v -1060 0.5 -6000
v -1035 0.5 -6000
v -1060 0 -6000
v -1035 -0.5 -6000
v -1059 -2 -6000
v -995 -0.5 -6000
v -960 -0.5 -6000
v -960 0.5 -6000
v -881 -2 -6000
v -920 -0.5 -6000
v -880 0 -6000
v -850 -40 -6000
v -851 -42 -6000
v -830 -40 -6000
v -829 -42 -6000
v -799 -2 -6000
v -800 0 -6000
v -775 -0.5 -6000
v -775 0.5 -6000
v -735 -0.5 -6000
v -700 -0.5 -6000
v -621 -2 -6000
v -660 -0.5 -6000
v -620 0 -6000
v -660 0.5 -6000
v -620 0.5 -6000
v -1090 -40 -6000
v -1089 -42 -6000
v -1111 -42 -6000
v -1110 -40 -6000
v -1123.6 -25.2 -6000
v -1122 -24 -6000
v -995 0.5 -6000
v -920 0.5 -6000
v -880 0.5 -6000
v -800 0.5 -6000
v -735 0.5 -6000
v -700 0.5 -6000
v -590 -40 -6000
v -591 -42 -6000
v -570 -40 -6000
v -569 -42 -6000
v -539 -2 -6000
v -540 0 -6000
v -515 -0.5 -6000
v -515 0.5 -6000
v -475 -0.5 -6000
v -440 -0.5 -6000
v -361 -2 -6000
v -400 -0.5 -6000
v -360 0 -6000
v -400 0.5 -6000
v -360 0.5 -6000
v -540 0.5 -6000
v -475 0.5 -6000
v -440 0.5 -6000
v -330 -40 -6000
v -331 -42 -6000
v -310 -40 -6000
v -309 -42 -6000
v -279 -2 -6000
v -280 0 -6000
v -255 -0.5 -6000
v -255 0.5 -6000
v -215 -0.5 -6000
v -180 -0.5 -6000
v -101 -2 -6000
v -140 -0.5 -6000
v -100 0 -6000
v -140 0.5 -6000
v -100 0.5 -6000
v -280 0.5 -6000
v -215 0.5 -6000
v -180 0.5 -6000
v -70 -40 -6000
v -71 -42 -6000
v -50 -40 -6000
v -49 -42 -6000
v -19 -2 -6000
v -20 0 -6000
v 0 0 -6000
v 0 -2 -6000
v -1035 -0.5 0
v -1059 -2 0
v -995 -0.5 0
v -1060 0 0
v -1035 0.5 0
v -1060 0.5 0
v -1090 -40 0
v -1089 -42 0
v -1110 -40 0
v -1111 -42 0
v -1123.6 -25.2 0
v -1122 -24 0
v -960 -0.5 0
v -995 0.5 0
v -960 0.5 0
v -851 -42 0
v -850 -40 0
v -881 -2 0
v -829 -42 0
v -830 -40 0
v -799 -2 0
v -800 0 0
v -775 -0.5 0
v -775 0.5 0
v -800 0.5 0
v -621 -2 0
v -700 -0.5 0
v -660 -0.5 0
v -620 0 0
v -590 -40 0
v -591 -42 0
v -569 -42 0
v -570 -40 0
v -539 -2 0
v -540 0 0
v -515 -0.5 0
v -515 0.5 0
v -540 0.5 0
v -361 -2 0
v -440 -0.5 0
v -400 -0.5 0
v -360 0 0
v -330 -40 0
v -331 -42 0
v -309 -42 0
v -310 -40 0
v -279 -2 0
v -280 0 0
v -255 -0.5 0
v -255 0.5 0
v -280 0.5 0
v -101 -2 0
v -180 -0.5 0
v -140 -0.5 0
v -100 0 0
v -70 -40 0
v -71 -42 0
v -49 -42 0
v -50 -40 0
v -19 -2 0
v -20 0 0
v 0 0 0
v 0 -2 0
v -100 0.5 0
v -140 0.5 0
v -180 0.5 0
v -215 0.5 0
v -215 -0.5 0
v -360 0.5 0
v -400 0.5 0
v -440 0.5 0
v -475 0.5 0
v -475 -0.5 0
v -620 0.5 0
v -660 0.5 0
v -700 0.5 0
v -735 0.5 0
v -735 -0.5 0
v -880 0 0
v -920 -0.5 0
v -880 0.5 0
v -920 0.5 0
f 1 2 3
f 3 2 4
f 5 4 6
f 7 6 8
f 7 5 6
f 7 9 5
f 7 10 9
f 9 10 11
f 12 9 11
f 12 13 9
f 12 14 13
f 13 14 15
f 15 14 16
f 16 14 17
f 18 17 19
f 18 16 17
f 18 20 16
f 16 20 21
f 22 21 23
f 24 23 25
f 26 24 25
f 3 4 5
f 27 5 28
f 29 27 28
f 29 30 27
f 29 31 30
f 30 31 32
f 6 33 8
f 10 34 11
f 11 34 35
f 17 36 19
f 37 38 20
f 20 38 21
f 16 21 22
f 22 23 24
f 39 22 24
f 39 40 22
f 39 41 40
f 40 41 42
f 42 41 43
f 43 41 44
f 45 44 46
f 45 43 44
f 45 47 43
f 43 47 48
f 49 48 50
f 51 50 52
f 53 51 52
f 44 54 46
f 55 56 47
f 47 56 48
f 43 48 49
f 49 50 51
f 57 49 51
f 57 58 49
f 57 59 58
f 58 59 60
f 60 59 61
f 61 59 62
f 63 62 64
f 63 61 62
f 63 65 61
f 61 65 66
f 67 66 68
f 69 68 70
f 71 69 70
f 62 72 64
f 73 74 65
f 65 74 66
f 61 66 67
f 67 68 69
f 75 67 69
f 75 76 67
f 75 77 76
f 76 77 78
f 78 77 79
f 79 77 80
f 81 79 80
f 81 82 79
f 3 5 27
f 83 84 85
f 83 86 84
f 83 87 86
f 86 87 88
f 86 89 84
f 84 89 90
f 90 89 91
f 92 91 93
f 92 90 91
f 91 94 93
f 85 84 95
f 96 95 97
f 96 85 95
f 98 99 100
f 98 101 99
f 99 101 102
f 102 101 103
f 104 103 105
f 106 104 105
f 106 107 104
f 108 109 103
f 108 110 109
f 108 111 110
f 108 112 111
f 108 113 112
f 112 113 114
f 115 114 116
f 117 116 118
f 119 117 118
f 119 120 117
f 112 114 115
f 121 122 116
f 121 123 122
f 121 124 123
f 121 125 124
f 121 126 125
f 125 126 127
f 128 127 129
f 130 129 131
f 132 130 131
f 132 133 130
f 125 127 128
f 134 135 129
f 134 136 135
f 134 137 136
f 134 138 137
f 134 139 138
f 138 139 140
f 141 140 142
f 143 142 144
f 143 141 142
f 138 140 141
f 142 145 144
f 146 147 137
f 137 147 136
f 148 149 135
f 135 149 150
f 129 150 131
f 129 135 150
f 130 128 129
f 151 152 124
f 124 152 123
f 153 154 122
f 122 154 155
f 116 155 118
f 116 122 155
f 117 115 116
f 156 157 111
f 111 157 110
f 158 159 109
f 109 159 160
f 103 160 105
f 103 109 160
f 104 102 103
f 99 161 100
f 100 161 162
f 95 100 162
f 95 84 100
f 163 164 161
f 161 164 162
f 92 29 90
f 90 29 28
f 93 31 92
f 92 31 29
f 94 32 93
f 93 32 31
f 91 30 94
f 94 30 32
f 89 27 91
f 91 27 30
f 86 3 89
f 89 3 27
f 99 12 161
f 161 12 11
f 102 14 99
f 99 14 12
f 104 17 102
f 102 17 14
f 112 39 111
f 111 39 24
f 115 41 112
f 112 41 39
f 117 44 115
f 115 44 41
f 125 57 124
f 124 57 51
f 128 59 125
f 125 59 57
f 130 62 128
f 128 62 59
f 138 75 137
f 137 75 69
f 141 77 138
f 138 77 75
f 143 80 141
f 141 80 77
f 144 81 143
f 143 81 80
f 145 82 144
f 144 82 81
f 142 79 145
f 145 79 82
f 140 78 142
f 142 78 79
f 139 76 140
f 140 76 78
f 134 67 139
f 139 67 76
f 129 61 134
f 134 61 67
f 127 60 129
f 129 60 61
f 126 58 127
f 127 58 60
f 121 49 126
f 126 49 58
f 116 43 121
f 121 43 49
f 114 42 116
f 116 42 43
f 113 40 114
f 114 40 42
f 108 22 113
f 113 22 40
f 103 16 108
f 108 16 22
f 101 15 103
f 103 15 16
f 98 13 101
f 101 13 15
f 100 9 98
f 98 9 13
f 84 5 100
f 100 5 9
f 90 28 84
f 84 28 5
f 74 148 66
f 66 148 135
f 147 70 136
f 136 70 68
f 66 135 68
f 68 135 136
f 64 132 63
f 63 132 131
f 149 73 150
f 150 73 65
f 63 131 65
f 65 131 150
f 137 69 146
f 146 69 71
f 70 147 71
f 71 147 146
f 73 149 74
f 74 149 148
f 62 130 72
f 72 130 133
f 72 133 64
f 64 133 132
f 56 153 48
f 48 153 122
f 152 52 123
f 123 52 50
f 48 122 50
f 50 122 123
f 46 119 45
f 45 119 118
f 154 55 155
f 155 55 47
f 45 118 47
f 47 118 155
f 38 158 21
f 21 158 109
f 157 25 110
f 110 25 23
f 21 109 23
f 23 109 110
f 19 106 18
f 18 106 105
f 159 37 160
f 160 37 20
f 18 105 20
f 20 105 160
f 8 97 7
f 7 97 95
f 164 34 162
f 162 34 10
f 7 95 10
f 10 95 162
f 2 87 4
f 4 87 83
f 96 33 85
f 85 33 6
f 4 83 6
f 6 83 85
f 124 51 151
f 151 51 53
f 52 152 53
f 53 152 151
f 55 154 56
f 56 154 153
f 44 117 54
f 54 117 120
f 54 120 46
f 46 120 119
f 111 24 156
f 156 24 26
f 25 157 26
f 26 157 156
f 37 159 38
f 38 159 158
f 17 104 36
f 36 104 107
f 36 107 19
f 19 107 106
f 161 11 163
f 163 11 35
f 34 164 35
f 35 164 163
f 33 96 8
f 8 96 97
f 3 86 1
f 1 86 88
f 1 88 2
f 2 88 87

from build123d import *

# Parameters (mm, degrees)
BOSS_EXTRUDE1_DEPTH = 6000
SKETCH2_W           = 40
SKETCH2_H           = 6000
CUT_EXTRUDE1_DEPTH  = 0.5
SKETCH2_9_W         = 40
SKETCH2_9_H         = 6000
SKETCH2_9_W_2       = 35
SKETCH2_9_W_3       = 25
BOSS_EXTRUDE3_DEPTH = 0.5
LPATTERN1_COUNT     = 4
LPATTERN1_PITCH     = 260


with BuildPart() as part:
    # Sketch1 → Boss-Extrude1 (new body)
    with BuildSketch(Plane.XY):
        Polygon((-20, 0), (0, 0), (0, -2), (-19, -2), (-49, -42), (-71, -42), (-101, -2), (-279, -2), (-309, -42), (-331, -42), (-361, -2), (-539, -2), (-569, -42), (-591, -42), (-621, -2), (-799, -2), (-829, -42), (-851, -42), (-881, -2), (-1059, -2), (-1089, -42), (-1111, -42), (-1123.6, -25.2), (-1122, -24), (-1110, -40), (-1090, -40), (-1060, 0), (-880, 0), (-850, -40), (-830, -40), (-800, 0), (-620, 0), (-590, -40), (-570, -40), (-540, 0), (-360, 0), (-330, -40), (-310, -40), (-280, 0), (-100, 0), (-70, -40), (-50, -40), align=None)
    extrude(amount=-BOSS_EXTRUDE1_DEPTH)

    # Sketch2 → Cut-Extrude1 (cut)
    with BuildSketch(Plane(origin=(0, 0, 0), x_dir=(1, 0, 0), z_dir=(0, 1, 0))):
        with Locations((-160, 3000)):
            Rectangle(SKETCH2_W, SKETCH2_H)
        with Locations((-235, 3000)):
            Rectangle(SKETCH2_W, SKETCH2_H)
    cut_extrude1 = extrude(amount=-CUT_EXTRUDE1_DEPTH, mode=Mode.SUBTRACT)

    # Sketch2<9> → Boss-Extrude3 (add)
    with BuildSketch(Plane(origin=(0, 0, 0), x_dir=(1, 0, 0), z_dir=(0, 1, 0))):
        with Locations((-120, 3000)):
            Rectangle(SKETCH2_9_W, SKETCH2_9_H)
        with Locations((-197.5, 3000)):
            Rectangle(SKETCH2_9_W_2, SKETCH2_9_H)
        with Locations((-267.5, 3000)):
            Rectangle(SKETCH2_9_W_3, SKETCH2_9_H)
    boss_extrude3 = extrude(amount=BOSS_EXTRUDE3_DEPTH)

    # LPattern1: Cut-Extrude1, Boss-Extrude3 ×4
    with Locations(*[(-i * LPATTERN1_PITCH, 0, 0) for i in range(1, LPATTERN1_COUNT)]):
        add(cut_extrude1, mode=Mode.SUBTRACT)
        add(boss_extrude3)


solid = part.part
